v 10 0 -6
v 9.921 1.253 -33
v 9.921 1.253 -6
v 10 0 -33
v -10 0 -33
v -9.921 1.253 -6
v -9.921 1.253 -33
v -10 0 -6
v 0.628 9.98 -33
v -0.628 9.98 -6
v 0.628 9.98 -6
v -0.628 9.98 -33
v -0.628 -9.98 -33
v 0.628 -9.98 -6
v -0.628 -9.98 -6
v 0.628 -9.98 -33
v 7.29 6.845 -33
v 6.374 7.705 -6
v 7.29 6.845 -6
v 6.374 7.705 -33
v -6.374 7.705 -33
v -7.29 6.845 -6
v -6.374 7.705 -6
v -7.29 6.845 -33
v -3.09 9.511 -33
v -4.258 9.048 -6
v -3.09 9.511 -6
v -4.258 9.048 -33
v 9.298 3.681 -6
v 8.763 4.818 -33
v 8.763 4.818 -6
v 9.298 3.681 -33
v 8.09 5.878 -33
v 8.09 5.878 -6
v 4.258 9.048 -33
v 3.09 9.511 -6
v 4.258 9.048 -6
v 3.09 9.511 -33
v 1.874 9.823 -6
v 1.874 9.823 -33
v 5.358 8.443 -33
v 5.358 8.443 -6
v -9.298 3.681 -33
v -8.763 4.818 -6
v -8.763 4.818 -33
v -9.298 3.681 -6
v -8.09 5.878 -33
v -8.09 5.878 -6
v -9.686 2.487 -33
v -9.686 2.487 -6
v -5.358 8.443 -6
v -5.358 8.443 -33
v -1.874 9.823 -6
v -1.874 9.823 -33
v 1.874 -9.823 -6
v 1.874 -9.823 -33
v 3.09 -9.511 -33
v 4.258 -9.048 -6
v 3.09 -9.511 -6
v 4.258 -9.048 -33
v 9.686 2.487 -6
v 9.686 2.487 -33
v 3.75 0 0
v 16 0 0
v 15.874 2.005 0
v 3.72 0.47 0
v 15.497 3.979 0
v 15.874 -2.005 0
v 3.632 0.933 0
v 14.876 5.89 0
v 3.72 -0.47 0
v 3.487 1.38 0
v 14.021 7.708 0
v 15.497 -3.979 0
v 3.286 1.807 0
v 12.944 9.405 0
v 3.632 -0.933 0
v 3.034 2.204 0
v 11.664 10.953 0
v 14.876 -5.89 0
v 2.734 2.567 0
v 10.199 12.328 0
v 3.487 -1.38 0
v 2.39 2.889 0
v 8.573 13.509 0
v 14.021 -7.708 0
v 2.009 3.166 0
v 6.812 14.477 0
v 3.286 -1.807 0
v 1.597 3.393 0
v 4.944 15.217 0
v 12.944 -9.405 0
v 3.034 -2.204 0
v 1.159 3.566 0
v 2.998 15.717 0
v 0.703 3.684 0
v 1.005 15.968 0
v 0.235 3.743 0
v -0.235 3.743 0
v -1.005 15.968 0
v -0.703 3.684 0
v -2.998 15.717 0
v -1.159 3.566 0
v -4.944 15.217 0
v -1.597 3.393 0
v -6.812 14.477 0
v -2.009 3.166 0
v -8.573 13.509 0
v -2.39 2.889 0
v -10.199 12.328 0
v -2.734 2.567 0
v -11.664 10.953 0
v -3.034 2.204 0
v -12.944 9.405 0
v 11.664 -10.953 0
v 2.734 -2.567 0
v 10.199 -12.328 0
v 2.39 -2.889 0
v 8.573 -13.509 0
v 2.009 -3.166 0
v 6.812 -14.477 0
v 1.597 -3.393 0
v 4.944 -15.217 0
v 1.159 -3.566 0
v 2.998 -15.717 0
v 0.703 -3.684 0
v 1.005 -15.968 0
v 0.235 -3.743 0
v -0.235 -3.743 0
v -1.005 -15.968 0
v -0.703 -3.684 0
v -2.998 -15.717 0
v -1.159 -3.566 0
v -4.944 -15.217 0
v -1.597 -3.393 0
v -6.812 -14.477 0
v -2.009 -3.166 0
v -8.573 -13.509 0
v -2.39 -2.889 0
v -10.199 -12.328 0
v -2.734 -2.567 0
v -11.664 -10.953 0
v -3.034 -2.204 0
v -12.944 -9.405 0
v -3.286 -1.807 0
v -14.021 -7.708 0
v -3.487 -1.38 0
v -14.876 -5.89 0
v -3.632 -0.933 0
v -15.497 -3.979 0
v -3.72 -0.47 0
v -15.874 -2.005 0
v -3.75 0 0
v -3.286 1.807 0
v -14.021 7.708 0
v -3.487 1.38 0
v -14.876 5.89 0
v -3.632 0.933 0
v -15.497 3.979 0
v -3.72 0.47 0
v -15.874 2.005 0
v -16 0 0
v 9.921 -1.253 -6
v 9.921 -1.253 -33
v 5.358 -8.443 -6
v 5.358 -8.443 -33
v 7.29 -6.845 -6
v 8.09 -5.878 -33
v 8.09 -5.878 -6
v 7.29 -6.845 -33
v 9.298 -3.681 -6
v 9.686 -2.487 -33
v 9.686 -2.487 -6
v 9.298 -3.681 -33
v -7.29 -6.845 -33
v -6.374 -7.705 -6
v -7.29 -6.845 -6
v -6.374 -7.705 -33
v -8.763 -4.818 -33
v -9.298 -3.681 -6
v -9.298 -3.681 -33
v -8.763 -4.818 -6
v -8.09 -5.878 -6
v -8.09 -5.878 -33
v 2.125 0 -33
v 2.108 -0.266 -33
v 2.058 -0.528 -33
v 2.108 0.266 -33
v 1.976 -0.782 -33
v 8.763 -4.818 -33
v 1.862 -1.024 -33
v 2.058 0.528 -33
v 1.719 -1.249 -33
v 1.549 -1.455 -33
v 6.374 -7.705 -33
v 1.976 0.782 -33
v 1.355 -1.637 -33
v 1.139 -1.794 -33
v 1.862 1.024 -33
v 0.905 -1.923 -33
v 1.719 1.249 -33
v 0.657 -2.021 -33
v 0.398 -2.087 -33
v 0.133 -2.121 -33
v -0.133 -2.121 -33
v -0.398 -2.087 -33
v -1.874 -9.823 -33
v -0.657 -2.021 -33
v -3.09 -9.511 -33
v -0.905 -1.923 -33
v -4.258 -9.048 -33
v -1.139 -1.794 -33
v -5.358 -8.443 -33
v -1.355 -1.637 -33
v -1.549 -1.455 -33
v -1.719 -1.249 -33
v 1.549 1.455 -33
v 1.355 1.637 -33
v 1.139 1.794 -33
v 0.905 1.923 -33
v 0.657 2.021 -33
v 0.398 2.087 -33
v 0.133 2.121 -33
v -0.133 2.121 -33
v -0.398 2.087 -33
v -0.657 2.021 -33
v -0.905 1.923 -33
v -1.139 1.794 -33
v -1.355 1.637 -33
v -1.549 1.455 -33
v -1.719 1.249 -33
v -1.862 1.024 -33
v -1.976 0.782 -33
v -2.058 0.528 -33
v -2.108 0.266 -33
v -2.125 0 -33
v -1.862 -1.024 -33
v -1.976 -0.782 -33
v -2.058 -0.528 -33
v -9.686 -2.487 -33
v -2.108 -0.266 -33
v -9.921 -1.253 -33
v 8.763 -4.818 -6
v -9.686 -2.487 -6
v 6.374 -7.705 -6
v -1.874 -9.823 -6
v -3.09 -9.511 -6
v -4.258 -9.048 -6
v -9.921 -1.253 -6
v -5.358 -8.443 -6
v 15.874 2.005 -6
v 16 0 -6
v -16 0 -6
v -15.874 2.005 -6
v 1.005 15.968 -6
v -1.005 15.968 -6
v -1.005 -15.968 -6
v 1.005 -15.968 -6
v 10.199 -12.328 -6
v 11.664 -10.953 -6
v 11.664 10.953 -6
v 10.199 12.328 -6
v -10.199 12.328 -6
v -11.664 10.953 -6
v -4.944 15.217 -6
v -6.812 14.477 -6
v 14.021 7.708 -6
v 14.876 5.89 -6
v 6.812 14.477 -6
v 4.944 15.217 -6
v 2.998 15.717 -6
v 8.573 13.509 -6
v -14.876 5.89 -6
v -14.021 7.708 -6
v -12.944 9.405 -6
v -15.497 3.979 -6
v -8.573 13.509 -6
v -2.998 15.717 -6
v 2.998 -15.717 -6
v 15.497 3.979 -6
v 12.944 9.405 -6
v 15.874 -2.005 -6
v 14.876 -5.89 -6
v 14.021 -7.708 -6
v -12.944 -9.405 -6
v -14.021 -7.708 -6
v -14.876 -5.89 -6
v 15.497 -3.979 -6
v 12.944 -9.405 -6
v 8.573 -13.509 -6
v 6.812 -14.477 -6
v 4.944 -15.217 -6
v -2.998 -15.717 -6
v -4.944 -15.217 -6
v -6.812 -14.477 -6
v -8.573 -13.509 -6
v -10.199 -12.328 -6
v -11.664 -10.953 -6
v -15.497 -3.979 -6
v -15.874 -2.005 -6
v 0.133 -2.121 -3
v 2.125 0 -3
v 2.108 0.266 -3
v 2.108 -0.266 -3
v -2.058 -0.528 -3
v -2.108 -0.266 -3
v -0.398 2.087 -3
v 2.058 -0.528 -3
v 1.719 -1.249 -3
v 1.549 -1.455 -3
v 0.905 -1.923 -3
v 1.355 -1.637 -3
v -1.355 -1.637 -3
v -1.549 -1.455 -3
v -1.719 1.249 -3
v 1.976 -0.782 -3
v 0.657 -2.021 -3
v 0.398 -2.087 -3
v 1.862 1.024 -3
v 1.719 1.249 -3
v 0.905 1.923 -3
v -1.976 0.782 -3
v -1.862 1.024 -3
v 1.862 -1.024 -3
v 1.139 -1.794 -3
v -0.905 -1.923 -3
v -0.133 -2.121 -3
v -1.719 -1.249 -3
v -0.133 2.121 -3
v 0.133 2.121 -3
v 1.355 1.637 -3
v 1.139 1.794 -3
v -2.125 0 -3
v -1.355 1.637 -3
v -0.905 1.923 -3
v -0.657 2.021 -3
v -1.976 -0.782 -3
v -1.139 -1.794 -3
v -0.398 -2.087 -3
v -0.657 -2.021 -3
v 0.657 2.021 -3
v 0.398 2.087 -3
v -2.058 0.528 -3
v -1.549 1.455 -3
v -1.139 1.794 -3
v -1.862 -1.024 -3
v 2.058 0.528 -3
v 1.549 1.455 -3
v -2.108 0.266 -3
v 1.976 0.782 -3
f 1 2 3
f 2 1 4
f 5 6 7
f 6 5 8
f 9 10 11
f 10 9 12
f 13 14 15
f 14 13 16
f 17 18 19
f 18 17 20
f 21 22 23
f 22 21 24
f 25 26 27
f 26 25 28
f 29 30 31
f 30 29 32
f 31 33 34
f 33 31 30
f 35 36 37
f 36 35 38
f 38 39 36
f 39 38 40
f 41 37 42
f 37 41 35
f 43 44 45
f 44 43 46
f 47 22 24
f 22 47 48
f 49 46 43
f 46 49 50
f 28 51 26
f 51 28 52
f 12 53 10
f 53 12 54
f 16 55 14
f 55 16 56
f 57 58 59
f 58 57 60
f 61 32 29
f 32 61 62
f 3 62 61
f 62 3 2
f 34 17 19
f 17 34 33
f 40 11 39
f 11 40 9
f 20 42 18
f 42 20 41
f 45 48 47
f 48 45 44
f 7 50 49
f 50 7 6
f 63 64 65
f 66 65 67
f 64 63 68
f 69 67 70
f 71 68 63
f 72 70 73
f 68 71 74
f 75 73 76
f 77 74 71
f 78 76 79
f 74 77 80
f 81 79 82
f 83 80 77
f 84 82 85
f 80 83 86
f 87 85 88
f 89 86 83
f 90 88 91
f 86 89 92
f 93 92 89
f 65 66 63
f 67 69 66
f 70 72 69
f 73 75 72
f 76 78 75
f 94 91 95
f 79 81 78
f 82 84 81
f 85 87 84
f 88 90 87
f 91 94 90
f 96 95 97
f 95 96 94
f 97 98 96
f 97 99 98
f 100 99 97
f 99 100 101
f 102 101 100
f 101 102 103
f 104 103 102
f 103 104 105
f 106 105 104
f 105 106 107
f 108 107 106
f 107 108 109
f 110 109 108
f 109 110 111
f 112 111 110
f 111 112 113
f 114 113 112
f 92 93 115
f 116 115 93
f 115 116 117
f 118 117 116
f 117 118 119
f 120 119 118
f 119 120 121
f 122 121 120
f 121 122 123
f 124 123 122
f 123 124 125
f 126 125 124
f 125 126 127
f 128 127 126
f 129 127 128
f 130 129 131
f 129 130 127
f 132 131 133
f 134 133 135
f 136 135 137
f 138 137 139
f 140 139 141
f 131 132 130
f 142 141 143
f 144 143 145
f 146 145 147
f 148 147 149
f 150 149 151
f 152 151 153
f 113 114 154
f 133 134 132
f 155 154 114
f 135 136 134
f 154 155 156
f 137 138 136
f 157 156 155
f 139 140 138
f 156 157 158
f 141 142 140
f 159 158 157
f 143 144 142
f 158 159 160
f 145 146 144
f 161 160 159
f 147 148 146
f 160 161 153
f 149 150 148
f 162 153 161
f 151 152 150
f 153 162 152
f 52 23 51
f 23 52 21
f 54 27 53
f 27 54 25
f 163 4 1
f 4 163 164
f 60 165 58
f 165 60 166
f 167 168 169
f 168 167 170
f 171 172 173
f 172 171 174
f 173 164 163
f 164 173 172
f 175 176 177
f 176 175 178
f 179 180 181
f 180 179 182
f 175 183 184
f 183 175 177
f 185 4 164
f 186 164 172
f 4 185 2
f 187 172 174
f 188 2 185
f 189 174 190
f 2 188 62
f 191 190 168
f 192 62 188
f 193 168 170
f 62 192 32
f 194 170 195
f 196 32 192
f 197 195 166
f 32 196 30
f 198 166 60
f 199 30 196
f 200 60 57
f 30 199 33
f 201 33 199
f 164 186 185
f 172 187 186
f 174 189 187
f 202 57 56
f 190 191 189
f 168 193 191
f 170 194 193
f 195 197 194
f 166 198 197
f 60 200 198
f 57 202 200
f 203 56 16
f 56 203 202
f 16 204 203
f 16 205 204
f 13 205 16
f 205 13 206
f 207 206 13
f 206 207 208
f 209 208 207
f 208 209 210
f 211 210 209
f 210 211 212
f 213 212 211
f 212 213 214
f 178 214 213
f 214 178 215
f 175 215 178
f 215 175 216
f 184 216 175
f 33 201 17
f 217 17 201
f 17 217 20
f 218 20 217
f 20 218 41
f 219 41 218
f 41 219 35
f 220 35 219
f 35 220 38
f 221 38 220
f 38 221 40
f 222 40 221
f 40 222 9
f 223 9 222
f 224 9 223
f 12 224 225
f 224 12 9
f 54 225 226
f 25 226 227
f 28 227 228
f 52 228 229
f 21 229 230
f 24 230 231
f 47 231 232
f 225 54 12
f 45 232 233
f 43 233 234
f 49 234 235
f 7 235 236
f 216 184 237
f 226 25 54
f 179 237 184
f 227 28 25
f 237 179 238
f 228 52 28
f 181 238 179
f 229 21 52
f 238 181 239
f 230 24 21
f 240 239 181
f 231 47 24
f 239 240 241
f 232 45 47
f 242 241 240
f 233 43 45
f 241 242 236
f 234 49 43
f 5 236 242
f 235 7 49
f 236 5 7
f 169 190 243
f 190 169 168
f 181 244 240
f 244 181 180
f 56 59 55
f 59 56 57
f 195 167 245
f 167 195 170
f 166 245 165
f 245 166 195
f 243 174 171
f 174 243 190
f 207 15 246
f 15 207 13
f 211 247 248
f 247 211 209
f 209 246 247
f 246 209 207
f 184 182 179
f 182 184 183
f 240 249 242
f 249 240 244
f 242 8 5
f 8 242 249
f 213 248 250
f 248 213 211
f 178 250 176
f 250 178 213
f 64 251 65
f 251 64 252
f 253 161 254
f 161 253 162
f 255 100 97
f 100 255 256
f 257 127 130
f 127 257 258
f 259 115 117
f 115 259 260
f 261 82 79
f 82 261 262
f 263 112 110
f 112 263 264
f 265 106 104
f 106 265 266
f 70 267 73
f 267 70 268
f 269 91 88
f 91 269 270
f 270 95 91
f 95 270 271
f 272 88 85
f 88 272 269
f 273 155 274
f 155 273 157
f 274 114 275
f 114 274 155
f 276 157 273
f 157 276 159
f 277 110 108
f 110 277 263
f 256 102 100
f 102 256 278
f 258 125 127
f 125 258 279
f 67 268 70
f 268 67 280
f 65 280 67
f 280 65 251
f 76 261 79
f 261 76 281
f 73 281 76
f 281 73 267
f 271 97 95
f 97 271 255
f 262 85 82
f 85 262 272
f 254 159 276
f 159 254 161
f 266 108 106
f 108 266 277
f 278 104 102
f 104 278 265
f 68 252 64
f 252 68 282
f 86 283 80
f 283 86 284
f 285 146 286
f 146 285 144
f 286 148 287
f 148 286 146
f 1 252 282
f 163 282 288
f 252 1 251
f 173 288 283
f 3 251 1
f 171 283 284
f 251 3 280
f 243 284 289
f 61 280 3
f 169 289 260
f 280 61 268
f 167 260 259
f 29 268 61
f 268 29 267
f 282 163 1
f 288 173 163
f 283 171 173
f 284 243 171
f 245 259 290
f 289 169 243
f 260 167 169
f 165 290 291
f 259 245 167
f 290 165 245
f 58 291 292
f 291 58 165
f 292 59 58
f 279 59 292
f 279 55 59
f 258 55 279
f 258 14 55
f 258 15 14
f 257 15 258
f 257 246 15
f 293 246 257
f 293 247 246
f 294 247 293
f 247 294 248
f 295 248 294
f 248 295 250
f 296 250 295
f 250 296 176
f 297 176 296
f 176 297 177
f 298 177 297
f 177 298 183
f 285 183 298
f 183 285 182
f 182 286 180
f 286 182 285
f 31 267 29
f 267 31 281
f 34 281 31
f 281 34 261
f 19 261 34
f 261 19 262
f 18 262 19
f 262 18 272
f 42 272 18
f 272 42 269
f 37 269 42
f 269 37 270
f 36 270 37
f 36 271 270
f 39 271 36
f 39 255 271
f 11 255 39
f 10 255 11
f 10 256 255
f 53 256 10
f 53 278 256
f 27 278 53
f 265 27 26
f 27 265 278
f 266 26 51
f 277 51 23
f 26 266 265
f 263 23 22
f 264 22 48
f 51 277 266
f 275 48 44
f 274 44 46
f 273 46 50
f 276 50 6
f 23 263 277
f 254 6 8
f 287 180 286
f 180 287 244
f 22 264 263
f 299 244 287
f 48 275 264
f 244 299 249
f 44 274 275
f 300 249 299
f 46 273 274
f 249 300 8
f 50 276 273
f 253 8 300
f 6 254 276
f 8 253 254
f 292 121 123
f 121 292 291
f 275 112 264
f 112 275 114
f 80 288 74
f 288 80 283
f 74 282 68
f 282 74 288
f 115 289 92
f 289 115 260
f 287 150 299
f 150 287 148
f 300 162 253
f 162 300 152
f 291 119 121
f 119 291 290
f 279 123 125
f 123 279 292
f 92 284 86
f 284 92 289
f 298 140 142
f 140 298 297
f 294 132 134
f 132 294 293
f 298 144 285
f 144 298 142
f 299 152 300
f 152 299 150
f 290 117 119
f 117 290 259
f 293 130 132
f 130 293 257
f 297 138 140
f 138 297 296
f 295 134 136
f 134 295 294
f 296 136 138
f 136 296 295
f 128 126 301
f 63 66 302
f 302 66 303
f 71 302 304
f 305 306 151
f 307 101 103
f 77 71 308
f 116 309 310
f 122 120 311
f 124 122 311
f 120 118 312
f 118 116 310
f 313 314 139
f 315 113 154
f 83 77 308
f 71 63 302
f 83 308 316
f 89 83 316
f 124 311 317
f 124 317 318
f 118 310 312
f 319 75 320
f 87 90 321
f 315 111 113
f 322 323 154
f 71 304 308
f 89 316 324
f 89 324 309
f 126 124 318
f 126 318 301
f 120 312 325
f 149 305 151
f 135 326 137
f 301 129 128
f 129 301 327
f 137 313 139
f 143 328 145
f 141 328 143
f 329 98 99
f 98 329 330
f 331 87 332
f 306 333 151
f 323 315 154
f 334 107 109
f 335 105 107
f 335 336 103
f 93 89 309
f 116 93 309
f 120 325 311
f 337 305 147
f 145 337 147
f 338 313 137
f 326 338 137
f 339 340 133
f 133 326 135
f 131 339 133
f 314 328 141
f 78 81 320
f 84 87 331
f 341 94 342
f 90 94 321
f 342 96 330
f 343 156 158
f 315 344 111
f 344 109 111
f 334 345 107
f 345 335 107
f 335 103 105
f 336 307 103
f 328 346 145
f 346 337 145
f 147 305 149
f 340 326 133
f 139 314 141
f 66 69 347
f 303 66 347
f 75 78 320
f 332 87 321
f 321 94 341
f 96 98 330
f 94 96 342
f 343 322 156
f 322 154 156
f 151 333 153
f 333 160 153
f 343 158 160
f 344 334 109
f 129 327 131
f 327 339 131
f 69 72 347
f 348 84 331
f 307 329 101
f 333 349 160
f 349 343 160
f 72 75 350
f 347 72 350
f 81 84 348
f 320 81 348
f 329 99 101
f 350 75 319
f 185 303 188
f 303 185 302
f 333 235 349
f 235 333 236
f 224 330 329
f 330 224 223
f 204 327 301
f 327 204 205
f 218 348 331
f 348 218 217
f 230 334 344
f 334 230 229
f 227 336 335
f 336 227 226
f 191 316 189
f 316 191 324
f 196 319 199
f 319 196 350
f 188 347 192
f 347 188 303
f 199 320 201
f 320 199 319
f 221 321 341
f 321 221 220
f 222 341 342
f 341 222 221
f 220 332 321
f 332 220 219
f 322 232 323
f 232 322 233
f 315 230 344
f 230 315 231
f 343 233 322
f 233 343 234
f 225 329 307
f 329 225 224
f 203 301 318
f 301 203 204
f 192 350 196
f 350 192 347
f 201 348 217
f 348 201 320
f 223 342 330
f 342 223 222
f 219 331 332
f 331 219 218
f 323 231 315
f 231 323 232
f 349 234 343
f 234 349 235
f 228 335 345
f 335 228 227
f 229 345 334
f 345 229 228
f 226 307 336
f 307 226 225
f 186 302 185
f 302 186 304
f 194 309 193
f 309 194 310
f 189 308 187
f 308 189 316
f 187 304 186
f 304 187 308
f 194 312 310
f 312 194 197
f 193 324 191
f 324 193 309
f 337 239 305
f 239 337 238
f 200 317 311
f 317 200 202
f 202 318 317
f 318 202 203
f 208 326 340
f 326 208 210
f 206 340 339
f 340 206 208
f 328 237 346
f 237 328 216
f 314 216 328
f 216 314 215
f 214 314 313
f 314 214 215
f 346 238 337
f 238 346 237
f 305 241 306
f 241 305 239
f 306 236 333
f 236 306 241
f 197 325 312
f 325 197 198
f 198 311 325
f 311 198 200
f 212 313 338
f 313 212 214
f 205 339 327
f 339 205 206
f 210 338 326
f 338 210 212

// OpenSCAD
$fn = 50;


difference() {
	union() {
		translate(v = [0, 0, -33.0000000000]) {
			cylinder(h = 33, r = 10.0000000000);
		}
		translate(v = [0, 0, -6.0000000000]) {
			cylinder(h = 6, r = 16.0000000000);
		}
	}
	union() {
		translate(v = [0, 0, 0]) {
			rotate(a = [0, 0, 0]) {
				difference() {
					union() {
						#translate(v = [0, 0, -33.0000000000]) {
							cylinder(h = 33, r = 2.0000000000);
						}
						#translate(v = [0, 0, -3]) {
							cylinder(h = 3, r = 10.0000000000, r1 = 2.1250000000, r2 = 3.7500000000);
						}
						#translate(v = [0, 0, -33.0000000000]) {
							cylinder(h = 33, r = 2.1250000000);
						}
						#translate(v = [0, 0, -33.0000000000]) {
							cylinder(h = 33, r = 2.0000000000);
						}
					}
					union();
				}
			}
		}
	}
}
